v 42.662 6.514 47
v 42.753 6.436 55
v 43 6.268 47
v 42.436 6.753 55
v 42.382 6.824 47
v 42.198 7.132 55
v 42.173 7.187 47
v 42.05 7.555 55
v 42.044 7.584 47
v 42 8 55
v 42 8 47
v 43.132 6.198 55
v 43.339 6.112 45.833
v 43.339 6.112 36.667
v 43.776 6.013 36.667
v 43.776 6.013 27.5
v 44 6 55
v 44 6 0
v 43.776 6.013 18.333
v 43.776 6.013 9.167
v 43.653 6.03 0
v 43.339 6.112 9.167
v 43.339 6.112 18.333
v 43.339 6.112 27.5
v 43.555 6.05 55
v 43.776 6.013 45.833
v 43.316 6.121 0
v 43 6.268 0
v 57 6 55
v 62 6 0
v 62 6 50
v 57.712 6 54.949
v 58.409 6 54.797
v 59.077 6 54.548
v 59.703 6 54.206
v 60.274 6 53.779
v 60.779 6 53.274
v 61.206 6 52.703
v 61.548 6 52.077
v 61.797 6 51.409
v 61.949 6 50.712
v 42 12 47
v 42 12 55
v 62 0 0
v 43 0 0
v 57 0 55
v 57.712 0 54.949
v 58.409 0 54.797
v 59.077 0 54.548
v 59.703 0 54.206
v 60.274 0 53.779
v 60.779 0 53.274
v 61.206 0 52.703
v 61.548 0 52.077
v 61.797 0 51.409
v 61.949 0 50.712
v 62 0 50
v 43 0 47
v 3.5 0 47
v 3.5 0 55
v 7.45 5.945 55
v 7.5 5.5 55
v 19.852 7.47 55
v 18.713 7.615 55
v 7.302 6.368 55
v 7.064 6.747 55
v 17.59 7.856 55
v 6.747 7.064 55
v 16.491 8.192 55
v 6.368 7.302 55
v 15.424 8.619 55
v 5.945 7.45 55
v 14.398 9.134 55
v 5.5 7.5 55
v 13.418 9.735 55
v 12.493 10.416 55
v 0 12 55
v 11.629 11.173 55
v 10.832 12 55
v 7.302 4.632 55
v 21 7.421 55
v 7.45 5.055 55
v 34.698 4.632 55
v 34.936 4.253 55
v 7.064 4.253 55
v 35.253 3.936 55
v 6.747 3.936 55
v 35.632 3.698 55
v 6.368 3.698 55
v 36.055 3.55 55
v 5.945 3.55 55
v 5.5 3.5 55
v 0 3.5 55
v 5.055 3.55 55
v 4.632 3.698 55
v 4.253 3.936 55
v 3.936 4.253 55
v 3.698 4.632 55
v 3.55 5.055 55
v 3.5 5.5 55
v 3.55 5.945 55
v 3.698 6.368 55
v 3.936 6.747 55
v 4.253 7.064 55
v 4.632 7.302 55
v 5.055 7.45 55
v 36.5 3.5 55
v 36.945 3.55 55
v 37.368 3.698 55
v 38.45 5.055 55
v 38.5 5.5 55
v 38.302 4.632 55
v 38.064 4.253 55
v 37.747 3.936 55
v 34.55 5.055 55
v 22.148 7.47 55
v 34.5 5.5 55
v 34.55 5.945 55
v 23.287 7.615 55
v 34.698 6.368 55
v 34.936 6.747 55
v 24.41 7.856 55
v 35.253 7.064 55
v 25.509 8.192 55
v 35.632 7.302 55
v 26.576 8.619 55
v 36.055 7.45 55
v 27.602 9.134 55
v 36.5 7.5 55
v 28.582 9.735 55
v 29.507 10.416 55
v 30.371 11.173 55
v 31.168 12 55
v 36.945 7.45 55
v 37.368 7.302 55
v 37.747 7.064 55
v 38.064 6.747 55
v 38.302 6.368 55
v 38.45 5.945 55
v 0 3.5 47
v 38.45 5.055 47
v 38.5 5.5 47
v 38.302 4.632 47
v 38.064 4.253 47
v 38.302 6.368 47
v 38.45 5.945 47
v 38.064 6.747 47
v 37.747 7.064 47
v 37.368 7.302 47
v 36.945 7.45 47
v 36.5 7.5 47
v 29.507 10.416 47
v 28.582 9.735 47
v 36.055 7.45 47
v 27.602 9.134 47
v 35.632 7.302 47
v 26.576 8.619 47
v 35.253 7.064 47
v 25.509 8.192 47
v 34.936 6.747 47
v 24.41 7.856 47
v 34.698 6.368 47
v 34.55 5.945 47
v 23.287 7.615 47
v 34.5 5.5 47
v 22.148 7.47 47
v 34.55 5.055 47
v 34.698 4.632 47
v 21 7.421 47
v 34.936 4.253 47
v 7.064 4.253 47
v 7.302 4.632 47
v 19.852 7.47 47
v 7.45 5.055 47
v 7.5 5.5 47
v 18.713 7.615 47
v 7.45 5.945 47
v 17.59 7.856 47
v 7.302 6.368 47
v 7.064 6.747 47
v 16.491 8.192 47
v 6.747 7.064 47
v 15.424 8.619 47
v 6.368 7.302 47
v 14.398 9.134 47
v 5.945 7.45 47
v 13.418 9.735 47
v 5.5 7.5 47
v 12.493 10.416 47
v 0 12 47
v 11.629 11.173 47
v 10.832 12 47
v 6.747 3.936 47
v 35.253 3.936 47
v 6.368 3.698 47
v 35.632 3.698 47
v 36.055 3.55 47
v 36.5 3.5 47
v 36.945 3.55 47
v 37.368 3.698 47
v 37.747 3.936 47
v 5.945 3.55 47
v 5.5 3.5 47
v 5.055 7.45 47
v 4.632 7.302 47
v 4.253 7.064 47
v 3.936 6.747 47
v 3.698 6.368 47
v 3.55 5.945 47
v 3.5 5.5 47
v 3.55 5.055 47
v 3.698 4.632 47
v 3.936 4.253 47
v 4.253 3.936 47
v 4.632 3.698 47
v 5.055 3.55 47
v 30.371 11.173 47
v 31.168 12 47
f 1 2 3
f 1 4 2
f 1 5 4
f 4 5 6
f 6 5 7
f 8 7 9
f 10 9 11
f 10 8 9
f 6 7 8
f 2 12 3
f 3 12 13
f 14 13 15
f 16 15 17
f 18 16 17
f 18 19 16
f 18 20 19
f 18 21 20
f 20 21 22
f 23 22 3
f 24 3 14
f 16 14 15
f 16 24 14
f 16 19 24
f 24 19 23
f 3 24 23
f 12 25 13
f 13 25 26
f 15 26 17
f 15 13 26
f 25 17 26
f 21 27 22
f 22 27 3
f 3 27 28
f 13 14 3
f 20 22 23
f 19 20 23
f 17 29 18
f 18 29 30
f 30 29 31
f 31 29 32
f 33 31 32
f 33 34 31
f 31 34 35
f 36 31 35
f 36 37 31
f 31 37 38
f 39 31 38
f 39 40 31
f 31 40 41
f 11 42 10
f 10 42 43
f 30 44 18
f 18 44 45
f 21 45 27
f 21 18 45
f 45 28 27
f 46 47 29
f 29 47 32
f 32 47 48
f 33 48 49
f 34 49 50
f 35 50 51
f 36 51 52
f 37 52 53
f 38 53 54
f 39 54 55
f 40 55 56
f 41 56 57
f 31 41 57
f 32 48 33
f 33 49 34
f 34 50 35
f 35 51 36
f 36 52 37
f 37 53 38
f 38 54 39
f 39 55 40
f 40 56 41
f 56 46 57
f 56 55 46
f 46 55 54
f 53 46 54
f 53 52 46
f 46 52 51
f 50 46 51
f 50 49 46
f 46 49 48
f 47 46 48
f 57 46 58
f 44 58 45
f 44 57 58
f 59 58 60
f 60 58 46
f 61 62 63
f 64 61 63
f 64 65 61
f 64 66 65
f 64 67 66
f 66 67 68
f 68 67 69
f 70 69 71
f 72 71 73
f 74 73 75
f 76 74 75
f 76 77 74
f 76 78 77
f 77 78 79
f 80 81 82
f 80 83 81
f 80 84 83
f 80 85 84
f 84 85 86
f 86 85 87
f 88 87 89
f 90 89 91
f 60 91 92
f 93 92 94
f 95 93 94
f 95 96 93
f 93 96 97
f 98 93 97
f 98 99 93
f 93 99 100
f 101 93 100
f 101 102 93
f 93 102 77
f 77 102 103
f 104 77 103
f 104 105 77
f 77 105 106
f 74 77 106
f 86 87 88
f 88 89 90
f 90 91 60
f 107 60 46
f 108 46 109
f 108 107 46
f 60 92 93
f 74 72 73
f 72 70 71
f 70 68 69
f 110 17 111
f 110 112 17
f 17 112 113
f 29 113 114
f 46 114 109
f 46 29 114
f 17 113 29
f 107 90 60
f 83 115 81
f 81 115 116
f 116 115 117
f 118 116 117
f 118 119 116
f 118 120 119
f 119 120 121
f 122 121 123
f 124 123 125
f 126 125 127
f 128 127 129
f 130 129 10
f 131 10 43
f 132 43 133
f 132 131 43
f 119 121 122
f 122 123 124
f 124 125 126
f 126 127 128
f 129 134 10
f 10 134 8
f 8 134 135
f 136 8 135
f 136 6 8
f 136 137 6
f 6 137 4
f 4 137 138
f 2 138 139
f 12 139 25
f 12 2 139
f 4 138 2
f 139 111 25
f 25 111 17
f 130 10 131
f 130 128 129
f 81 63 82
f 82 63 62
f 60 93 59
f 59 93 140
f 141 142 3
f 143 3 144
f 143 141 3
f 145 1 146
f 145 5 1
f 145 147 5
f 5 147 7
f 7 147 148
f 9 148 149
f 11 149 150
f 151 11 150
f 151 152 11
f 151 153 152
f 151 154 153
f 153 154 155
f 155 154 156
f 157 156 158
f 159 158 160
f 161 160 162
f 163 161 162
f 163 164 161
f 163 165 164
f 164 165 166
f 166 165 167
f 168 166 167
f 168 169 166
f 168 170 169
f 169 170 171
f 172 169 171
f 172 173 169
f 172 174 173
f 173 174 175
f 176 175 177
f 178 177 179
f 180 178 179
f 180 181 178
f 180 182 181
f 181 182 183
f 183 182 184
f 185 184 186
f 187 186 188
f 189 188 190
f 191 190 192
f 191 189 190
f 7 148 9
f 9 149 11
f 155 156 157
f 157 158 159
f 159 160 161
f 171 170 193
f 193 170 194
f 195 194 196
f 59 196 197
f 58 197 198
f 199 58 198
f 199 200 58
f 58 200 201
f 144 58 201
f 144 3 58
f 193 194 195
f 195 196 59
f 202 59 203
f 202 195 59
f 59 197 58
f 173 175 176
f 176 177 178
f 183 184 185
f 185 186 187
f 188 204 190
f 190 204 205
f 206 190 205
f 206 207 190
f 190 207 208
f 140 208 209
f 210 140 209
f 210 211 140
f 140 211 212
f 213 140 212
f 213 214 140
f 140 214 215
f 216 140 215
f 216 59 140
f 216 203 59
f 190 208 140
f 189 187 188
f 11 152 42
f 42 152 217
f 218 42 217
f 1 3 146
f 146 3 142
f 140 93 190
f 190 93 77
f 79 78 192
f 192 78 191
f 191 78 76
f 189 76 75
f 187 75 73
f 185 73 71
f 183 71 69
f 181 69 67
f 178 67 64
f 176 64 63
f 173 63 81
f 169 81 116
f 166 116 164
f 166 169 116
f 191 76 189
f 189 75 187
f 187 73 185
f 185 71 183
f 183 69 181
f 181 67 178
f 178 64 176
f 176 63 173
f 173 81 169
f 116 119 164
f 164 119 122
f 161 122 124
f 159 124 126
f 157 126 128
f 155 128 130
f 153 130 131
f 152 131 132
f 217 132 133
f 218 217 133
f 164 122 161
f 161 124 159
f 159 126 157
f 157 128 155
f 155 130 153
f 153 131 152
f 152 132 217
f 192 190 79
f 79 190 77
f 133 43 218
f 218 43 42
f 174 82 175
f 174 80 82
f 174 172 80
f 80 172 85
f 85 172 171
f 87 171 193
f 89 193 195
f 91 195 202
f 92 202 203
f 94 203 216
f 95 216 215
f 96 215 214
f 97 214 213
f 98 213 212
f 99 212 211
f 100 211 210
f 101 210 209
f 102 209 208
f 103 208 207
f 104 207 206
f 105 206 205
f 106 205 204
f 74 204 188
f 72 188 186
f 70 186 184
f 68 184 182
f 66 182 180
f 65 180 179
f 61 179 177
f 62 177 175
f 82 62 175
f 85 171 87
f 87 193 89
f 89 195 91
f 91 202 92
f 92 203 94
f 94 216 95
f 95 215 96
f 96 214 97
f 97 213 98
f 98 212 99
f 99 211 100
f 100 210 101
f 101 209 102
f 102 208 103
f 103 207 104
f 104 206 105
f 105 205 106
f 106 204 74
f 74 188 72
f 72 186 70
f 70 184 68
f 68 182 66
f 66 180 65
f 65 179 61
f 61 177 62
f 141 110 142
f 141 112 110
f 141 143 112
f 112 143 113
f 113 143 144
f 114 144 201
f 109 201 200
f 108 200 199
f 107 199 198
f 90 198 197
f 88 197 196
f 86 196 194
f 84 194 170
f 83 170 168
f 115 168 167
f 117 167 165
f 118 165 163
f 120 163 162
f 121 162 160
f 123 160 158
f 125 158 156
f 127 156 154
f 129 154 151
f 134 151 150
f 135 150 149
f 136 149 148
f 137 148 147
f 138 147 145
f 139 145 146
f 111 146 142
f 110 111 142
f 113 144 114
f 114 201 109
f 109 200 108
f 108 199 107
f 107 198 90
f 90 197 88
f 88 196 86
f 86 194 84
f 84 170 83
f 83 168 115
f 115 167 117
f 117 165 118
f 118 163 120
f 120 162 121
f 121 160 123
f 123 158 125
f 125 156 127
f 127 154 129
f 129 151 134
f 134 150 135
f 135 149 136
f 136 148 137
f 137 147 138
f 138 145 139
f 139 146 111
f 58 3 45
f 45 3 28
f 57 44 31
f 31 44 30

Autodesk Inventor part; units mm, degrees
ref_plane "YZ Plane" through (0, 0, 0) normal (1, 0, 0) x (0, 1, 0)
ref_plane "Work Plane1" through (21, 21, 47) normal (0, 0, 1) x (1, 0, 0)
sketch "Sketch1" plane through (21, 21, 47) normal (0, 0, 1) x (1, 0, 0)
  line L0 (21, -17.5) -> (21, 17.5) construction
  line L1 (-17.5, -21) -> (17.5, -21) construction
  line L2 (21, -21) -> (9, -21)
  line L3 (9, -21) -> (9, -9)
  line L4 (9, -9) -> (21, -9)
  line L5 (21, -9) -> (21, -21)
  point P0 (-21, -21)
  dimension "d0" = 12
  dimension "d1" = 12
extrude "Extrusion1" add sketch "Sketch1" along normal blind 8
sketch "Sketch2" plane through (42, 0, 47) normal (1, 0, 0) x (0, 0, -1)
  line L0 (-8, 0) -> (0, 0)
  line L1 (0, 0) -> (0, 5)
  line L2 (0, 5) -> (-8, 5)
  line L3 (-8, 5) -> (-8, 0)
  point P0 (47, 0)
  dimension "d4" = 8
  dimension "d5" = 5
extrude "Extrusion2" add sketch "Sketch2" along normal blind 20
sketch "Sketch3" plane through (21, 21, 47) normal (0, 0, -1) x (-1, 0, 0)
  line L0 (-41, -16) -> (-22, -16)
  line L1 (-22, -16) -> (-22, -21)
  line L2 (-22, -21) -> (-41, -21)
  line L3 (-41, -21) -> (-41, -16)
  point P0 (21, -21)
  dimension "d8" = 19
  dimension "d9" = 5
extrude "Extrusion3" add sketch "Sketch3" along normal blind 20
sketch "Sketch4" plane through (21, 21, 55) normal (0, 0, 1) x (1, 0, 0)
  circle A0 centre (15.5, -15.5) radius 1.5 projected
  circle A1 centre (15.5, -15.5) radius 2
  point P0 (-21, -21)
  dimension "d15" = 0.5
extrude "Extrusion4" cut sketch "Sketch4" against normal blind 8 contours A0 | A1
sketch "Sketch5" plane through (30, 0, 47) normal (-1, 0, 0) x (0, 0, 1)
  line L0 (0, 0) -> (0, 12) projected
  line L1 (0, 0) -> (8, 0) projected
  line L2 (8, 12) -> (8, 0) projected
  line L3 (0, 12) -> (8, 12) projected
  point P0 (-47, 0)
ref_plane "Work Plane2" through (0, 3.5, 0) normal (-1, 0, 0) x (0, 0, 1)
extrude "Extrusion5" add sketch "Sketch5" along normal up to surface (30 mm away)
sketch "Sketch6" plane through (21, 21, 55) normal (0, 0, 1) x (1, 0, 0)
  circle A0 centre (-15.5, -15.5) radius 1.5 projected
  circle A1 centre (-15.5, -15.5) radius 2
  dimension "d20" = 0.5
extrude "Extrusion6" cut sketch "Sketch6" against normal blind 8 contours A0 | A1
sketch "Sketch7" plane through (21, 21, 55) normal (0, 0, 1) x (1, 0, 0)
  line L0 (21, -9) -> (-21, -9) projected
  circle A0 centre (0, 0) radius 11 projected
  arc A1 (-10.1679, -9) -> (10.1679, -9) centre (0, 0) ccw
  line L1 (-10.1679, -9) -> (11.2714, -9)
  line L2 (-13.5789, -9) -> (17.965, -9)
extrude "Extrusion7" cut sketch "Sketch7" against normal blind 8 contours A1 L0 A0 | A0 L0 picked at (-1.3175, -9.4218)
sketch "Sketch8" plane through (21, 21, 55) normal (0, 0, 1) x (1, 0, 0)
  line L0 (-21, -9) -> (-21, -21) projected
  line L1 (41, -21) -> (-21, -21) projected
  line L2 (-17.5, -21) -> (-21, -17.5) projected
extrude "Extrusion8" cut sketch "Sketch8" against normal blind 8
fillet "Fillet4" radius 5 1 edges at (62, 2.5, 55)
sketch "Sketch10" plane through (21, 21, 27) normal (0, 0, -1) x (-1, 0, 0)
  line L0 (-41, -16) -> (-41, -21) projected
  line L1 (-41, -21) -> (-22, -21) projected
  line L2 (-22, -21) -> (-22, -16) projected
  line L3 (-22, -16) -> (-41, -16) projected
  point P0 (21, -21)
extrude "Extrusion10" add sketch "Sketch10" along normal blind 27
sketch "Sketch11" plane through (42, 5, 55) normal (0, 1, 0) x (1, 0, 0)
  arc A0 (15, 0) -> (20, 5) centre (15, 5) ccw projected
  line L0 (20, 5) -> (20, 55) projected
  line L1 (1, 55) -> (20, 55) projected
  line L2 (1, 8) -> (1, 55) projected
  line L3 (0, 8) -> (1, 8) projected
  line L4 (0, 0) -> (0, 8) projected
  line L5 (0, 0) -> (15, 0) projected
  point P0 (-42, 55)
extrude "Extrusion11" add sketch "Sketch11" along normal blind 1
fillet "Fillet5" radius 2 1 edges at (42, 6, 51)
properties part number "RightBracket"
